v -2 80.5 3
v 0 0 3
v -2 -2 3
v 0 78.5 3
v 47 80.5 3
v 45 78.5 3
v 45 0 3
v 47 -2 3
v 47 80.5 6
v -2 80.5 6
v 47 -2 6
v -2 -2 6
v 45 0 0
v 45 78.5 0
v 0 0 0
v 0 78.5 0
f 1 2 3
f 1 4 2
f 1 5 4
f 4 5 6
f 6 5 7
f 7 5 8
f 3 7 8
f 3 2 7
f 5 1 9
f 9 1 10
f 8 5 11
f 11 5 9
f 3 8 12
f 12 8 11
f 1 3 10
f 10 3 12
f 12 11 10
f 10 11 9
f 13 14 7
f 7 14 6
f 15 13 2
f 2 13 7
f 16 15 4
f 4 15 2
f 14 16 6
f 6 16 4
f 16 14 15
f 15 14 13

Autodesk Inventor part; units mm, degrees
ref_plane "YZ Plane" through (0, 0, 0) normal (1, 0, 0) x (0, 1, 0)
ref_plane "XZ Plane" through (0, 0, 0) normal (0, 1, 0) x (-1, 0, 0)
ref_plane "XY Plane" through (0, 0, 0) normal (0, 0, 1) x (1, 0, 0)
sketch "Sketch1" plane through (0, 0, 0) normal (0, 0, 1) x (1, 0, 0)
  line L0 (0, 0) -> (45, 0)
  line L1 (45, 0) -> (45, 78.5)
  line L2 (45, 78.5) -> (0, 78.5)
  line L3 (0, 78.5) -> (0, 0)
  dimension "d0" = 45
  dimension "d1" = 78.5
extrude "Extrusion1" add sketch "Sketch1" along normal blind 3
sketch "Sketch2" plane through (0, 0, 3) normal (0, 0, 1) x (1, 0, 0)
  line L0 (0, 78.5) -> (-2, 78.5)
  line L1 (-2, 78.5) -> (-2, 80.5)
  line L2 (-2, 80.5) -> (0, 80.5)
  line L3 (0, 80.5) -> (0, 78.5)
  line L4 (45, 0) -> (47, 0)
  line L5 (47, 0) -> (47, -2)
  line L6 (47, -2) -> (45, -2)
  line L7 (45, -2) -> (45, 0)
  line L8 (-2, 80.5) -> (47, 80.5)
  line L9 (47, 80.5) -> (47, -2)
  line L10 (47, -2) -> (-2, -2)
  line L11 (-2, -2) -> (-2, 80.5)
  dimension "d4" = 2
  dimension "d5" = 2
  dimension "d6" = 2
  dimension "d7" = 2
extrude "Extrusion2" add sketch "Sketch2" along normal blind 3
properties part number "Transmitter Case Top"
